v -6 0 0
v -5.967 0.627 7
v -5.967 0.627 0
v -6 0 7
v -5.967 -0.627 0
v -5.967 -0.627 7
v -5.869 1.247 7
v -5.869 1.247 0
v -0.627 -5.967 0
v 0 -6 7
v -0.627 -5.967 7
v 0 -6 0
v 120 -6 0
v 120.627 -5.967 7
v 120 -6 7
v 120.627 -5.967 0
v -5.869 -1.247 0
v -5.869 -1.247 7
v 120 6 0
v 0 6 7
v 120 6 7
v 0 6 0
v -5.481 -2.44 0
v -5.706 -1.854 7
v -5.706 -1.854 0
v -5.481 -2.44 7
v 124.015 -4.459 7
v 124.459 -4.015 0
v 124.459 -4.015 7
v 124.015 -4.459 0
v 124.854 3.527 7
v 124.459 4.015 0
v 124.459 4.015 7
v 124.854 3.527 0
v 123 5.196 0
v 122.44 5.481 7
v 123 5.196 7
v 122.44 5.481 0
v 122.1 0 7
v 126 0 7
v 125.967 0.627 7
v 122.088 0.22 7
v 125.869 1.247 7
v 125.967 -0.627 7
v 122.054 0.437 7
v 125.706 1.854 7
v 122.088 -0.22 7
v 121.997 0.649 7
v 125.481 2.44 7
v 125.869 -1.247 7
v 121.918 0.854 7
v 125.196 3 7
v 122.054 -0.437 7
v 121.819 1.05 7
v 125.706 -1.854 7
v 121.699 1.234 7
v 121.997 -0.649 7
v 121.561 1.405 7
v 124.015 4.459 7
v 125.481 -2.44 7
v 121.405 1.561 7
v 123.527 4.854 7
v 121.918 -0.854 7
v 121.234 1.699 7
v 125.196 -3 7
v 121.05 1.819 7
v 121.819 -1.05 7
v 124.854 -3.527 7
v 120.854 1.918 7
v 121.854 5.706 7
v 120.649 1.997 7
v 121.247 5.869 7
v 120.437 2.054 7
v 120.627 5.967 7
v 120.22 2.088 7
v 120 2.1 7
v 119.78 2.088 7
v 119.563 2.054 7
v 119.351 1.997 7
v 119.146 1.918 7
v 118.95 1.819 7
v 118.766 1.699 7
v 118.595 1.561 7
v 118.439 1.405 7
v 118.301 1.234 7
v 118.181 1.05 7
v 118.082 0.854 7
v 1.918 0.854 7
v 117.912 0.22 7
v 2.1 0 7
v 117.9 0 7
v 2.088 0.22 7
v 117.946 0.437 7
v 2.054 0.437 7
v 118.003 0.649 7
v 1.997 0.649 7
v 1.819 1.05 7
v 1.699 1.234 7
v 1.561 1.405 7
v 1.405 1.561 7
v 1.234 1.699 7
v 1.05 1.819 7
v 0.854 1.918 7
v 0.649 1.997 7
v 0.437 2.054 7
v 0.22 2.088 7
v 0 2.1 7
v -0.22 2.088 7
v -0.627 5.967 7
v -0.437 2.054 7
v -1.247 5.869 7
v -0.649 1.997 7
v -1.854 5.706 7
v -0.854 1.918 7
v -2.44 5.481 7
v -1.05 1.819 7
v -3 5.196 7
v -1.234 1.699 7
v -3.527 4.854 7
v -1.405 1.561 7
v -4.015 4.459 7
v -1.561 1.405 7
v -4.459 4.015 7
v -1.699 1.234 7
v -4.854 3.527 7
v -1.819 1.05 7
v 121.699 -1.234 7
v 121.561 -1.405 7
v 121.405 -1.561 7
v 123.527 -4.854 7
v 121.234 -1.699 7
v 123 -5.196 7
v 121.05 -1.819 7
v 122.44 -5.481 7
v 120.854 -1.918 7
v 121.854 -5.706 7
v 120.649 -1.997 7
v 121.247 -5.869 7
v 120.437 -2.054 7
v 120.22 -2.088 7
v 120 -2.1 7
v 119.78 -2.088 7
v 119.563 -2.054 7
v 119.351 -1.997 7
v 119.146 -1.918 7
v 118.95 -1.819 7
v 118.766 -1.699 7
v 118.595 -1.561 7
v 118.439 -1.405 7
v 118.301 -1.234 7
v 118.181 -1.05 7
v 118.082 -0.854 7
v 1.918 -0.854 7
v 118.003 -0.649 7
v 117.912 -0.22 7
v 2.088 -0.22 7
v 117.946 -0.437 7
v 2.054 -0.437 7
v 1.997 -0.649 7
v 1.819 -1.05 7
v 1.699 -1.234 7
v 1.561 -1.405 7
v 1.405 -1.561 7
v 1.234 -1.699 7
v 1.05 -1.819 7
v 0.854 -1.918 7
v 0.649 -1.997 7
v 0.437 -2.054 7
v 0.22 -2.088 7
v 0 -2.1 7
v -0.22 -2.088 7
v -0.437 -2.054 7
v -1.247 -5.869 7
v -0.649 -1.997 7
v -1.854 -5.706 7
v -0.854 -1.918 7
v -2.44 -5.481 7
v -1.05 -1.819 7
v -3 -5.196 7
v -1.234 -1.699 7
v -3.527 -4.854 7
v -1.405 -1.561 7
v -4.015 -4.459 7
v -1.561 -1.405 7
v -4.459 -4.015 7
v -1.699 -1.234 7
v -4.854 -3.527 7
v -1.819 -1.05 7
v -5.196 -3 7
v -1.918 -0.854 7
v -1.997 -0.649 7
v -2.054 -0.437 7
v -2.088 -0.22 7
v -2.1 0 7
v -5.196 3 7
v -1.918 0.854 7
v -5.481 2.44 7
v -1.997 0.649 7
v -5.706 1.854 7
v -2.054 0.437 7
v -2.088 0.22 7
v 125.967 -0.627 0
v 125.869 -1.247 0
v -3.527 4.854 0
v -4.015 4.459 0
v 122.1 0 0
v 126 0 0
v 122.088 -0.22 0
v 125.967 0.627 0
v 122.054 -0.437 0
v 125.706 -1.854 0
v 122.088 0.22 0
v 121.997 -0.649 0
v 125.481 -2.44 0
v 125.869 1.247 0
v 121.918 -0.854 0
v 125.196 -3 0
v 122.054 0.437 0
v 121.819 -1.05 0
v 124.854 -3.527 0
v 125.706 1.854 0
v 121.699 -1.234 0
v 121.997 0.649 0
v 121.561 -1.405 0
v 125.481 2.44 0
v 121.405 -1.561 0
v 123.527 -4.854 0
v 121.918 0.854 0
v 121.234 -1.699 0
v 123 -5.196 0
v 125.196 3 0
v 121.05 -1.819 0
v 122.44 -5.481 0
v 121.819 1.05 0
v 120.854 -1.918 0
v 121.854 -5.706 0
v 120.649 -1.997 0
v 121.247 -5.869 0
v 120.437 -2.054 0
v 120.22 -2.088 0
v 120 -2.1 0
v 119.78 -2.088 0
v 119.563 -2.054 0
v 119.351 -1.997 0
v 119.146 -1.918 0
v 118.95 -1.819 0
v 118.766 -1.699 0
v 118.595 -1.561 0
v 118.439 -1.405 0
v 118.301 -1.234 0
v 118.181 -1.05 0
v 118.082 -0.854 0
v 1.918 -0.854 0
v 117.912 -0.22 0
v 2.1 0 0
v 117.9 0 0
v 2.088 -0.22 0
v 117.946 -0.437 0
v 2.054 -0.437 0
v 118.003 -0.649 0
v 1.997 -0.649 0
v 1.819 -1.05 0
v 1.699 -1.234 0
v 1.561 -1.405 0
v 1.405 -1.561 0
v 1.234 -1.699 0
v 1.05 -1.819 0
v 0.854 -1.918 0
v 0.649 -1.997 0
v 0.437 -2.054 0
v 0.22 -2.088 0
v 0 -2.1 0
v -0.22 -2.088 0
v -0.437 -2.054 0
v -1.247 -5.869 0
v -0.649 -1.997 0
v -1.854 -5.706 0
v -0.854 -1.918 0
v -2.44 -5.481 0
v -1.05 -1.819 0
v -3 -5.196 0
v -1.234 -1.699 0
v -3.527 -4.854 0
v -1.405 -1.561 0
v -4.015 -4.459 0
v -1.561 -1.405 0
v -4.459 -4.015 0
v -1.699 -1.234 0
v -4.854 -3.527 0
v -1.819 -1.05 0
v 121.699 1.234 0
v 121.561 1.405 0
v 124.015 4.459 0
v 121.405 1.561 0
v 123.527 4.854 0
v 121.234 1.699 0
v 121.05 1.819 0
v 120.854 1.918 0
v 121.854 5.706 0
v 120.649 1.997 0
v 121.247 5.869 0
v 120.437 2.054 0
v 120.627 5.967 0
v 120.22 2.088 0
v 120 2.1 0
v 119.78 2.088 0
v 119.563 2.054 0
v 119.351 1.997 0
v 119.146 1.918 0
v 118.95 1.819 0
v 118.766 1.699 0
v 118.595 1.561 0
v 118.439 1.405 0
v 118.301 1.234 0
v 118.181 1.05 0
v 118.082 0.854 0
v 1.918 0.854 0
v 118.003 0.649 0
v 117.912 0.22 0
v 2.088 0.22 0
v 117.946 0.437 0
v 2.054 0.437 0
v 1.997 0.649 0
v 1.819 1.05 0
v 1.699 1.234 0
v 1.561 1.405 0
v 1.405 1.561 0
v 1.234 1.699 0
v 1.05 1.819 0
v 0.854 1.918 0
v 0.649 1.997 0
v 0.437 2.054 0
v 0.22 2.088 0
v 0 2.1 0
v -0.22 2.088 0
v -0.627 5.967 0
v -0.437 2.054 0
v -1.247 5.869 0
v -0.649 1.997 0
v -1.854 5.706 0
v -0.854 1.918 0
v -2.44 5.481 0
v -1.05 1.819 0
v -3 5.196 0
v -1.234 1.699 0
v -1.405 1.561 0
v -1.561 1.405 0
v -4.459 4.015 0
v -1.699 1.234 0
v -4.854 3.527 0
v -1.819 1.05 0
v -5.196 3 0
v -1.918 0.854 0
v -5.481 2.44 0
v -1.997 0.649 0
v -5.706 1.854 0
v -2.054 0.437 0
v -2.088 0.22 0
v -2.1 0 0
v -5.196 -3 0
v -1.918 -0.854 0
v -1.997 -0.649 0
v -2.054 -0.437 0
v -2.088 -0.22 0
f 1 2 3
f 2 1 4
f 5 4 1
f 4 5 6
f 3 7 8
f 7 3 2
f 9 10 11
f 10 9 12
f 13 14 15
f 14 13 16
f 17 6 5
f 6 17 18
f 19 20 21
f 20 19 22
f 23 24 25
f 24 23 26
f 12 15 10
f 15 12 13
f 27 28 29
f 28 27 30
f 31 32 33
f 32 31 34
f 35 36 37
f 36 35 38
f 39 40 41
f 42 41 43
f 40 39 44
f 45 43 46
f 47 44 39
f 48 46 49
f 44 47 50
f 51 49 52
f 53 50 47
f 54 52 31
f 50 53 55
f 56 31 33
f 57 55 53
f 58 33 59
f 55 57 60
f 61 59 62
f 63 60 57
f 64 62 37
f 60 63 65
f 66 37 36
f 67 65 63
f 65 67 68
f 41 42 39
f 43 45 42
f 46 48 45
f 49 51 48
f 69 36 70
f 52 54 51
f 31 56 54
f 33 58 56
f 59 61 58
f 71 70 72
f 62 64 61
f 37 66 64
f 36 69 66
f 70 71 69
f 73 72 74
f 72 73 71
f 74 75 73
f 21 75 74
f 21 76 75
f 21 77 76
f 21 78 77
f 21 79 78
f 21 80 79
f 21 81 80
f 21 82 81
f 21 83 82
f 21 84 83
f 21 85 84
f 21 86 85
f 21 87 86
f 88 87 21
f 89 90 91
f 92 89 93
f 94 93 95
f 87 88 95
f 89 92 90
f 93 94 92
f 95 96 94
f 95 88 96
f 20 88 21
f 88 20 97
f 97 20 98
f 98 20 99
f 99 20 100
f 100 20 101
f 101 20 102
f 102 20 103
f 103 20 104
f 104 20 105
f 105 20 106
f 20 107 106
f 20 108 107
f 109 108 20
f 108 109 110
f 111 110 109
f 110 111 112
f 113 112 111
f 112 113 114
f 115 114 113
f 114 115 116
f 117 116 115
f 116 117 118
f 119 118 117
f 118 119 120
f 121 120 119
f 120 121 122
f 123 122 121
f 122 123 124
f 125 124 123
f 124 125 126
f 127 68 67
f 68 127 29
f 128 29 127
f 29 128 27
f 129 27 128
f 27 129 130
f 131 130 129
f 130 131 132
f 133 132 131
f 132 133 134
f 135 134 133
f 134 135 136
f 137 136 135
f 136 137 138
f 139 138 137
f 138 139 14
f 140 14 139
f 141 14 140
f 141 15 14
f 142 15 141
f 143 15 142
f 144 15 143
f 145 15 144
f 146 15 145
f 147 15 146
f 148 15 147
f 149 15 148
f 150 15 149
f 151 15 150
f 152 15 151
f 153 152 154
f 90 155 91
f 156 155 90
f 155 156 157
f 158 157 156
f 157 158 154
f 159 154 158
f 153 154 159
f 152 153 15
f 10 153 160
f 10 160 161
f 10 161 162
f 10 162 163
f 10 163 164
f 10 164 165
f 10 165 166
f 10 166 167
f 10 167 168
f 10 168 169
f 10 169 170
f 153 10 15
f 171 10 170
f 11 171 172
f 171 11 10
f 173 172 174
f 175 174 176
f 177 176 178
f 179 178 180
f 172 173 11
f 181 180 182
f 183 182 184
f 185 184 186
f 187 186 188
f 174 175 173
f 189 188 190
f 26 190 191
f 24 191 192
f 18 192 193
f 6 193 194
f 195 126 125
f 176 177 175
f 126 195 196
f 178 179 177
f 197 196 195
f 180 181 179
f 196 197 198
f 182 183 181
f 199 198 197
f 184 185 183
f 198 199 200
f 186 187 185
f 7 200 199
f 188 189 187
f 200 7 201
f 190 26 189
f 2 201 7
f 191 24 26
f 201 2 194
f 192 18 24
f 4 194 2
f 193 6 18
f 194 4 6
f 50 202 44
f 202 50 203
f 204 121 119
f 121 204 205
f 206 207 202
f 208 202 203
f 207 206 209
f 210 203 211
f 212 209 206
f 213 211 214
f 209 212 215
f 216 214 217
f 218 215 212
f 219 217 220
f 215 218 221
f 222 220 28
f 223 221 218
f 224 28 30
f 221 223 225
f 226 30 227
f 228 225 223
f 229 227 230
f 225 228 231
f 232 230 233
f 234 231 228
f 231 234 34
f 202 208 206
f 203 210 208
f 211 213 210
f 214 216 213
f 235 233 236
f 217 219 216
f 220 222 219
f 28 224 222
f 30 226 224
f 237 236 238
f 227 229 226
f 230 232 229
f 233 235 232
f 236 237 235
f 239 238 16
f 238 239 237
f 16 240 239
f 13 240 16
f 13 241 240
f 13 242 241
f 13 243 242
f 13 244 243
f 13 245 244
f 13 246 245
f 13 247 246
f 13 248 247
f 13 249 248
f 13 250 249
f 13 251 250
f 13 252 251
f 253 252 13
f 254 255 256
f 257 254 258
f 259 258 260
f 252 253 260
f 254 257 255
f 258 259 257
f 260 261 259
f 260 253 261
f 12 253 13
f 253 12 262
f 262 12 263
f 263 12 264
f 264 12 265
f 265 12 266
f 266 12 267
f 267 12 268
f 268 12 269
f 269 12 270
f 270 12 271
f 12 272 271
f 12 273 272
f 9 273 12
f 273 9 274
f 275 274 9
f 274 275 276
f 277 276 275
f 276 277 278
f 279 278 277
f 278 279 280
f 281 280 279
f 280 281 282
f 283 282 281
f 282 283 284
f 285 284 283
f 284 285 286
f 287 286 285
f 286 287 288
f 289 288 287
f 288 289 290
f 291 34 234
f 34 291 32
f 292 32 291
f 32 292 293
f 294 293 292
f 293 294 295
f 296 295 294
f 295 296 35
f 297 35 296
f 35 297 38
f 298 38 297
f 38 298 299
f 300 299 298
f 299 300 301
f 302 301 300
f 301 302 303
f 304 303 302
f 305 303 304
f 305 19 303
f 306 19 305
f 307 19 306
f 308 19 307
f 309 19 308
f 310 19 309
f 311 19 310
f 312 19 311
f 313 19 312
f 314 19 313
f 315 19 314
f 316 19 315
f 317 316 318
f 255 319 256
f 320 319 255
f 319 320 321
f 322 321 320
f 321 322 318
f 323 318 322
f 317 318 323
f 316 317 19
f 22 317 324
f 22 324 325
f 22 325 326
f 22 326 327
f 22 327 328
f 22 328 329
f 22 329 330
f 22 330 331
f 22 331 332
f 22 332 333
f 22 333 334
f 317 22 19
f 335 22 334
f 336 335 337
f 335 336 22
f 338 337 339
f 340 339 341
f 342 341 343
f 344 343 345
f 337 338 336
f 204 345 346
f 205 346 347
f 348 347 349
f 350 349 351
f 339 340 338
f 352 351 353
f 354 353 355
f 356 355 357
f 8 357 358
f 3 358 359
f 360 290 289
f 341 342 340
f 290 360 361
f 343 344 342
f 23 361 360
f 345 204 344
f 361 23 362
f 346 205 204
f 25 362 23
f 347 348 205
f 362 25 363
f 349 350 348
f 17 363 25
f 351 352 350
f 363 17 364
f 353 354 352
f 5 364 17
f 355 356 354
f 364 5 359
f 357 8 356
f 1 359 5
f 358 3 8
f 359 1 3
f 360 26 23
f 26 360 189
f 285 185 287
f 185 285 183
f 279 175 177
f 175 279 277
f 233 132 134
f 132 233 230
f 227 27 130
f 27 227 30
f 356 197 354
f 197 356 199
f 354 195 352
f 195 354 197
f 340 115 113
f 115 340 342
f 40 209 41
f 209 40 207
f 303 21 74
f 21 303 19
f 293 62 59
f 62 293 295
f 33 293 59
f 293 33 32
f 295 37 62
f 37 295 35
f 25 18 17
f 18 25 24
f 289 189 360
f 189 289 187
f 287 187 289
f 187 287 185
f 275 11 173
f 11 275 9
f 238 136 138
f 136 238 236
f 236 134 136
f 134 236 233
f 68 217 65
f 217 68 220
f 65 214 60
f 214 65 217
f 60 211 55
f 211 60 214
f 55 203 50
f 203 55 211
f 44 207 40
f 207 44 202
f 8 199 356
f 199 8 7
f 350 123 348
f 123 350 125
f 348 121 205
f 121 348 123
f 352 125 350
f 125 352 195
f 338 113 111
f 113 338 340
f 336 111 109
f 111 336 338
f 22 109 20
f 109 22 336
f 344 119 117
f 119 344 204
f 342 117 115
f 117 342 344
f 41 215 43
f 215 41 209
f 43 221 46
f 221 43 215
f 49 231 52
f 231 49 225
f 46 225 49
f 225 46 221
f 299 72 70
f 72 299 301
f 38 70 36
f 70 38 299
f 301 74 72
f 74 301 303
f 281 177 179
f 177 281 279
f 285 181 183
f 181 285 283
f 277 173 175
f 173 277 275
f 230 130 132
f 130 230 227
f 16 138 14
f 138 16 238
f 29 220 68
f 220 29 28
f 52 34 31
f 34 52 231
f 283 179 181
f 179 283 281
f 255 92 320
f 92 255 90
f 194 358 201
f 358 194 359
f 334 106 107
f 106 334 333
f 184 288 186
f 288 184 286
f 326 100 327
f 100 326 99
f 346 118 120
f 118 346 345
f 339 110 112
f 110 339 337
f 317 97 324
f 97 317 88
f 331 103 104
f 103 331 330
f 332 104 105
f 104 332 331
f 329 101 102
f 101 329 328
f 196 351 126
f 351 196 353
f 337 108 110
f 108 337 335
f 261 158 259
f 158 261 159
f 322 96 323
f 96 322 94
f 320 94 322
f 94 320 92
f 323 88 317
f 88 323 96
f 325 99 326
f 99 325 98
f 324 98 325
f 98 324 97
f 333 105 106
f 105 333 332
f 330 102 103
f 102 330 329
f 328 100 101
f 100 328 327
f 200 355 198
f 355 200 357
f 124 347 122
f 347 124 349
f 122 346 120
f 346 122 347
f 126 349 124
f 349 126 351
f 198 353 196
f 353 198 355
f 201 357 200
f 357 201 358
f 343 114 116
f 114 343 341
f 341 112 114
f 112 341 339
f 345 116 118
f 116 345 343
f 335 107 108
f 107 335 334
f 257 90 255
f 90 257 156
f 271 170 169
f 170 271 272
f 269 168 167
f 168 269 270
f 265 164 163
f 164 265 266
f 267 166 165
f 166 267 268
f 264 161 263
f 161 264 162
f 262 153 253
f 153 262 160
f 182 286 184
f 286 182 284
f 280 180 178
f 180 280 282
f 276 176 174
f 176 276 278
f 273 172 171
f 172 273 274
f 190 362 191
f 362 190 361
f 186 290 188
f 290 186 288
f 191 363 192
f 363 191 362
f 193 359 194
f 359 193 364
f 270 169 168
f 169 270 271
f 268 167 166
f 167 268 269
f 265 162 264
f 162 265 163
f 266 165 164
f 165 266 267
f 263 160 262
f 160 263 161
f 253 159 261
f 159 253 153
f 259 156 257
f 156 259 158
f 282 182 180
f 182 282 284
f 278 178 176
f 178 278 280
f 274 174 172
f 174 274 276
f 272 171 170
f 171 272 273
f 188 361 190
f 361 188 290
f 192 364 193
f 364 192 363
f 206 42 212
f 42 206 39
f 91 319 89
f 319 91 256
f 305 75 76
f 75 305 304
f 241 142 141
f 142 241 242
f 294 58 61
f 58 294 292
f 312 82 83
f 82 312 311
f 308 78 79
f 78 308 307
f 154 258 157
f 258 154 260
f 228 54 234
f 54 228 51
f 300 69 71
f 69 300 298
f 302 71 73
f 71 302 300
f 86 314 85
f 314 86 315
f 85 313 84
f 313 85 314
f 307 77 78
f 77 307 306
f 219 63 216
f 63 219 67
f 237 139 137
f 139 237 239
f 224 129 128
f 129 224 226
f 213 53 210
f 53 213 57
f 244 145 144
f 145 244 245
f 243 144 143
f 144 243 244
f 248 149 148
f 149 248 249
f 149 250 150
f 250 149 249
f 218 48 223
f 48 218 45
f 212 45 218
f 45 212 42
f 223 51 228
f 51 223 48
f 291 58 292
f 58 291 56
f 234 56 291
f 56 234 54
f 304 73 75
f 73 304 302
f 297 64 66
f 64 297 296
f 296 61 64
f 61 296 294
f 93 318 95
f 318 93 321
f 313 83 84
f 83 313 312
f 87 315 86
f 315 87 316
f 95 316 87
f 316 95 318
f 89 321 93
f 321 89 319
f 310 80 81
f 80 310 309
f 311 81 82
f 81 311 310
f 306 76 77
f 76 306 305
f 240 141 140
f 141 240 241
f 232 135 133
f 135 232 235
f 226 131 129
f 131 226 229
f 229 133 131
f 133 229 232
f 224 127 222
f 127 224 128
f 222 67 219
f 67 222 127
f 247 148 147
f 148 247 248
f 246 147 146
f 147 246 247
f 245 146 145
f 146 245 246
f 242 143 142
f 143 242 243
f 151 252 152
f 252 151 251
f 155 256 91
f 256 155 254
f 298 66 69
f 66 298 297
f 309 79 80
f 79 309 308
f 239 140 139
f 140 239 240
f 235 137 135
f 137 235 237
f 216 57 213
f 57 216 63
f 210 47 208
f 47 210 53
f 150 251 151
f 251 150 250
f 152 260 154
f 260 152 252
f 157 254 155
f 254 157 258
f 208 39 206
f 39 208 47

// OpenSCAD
$fn=60;
difference(){
hull(){
cylinder(d=12,h=7);
translate([120,0,0])cylinder(d=12,h=7);
}
cylinder(d=4.2,h=7);
translate([120,0,0])cylinder(d=4.2,h=7);
}
